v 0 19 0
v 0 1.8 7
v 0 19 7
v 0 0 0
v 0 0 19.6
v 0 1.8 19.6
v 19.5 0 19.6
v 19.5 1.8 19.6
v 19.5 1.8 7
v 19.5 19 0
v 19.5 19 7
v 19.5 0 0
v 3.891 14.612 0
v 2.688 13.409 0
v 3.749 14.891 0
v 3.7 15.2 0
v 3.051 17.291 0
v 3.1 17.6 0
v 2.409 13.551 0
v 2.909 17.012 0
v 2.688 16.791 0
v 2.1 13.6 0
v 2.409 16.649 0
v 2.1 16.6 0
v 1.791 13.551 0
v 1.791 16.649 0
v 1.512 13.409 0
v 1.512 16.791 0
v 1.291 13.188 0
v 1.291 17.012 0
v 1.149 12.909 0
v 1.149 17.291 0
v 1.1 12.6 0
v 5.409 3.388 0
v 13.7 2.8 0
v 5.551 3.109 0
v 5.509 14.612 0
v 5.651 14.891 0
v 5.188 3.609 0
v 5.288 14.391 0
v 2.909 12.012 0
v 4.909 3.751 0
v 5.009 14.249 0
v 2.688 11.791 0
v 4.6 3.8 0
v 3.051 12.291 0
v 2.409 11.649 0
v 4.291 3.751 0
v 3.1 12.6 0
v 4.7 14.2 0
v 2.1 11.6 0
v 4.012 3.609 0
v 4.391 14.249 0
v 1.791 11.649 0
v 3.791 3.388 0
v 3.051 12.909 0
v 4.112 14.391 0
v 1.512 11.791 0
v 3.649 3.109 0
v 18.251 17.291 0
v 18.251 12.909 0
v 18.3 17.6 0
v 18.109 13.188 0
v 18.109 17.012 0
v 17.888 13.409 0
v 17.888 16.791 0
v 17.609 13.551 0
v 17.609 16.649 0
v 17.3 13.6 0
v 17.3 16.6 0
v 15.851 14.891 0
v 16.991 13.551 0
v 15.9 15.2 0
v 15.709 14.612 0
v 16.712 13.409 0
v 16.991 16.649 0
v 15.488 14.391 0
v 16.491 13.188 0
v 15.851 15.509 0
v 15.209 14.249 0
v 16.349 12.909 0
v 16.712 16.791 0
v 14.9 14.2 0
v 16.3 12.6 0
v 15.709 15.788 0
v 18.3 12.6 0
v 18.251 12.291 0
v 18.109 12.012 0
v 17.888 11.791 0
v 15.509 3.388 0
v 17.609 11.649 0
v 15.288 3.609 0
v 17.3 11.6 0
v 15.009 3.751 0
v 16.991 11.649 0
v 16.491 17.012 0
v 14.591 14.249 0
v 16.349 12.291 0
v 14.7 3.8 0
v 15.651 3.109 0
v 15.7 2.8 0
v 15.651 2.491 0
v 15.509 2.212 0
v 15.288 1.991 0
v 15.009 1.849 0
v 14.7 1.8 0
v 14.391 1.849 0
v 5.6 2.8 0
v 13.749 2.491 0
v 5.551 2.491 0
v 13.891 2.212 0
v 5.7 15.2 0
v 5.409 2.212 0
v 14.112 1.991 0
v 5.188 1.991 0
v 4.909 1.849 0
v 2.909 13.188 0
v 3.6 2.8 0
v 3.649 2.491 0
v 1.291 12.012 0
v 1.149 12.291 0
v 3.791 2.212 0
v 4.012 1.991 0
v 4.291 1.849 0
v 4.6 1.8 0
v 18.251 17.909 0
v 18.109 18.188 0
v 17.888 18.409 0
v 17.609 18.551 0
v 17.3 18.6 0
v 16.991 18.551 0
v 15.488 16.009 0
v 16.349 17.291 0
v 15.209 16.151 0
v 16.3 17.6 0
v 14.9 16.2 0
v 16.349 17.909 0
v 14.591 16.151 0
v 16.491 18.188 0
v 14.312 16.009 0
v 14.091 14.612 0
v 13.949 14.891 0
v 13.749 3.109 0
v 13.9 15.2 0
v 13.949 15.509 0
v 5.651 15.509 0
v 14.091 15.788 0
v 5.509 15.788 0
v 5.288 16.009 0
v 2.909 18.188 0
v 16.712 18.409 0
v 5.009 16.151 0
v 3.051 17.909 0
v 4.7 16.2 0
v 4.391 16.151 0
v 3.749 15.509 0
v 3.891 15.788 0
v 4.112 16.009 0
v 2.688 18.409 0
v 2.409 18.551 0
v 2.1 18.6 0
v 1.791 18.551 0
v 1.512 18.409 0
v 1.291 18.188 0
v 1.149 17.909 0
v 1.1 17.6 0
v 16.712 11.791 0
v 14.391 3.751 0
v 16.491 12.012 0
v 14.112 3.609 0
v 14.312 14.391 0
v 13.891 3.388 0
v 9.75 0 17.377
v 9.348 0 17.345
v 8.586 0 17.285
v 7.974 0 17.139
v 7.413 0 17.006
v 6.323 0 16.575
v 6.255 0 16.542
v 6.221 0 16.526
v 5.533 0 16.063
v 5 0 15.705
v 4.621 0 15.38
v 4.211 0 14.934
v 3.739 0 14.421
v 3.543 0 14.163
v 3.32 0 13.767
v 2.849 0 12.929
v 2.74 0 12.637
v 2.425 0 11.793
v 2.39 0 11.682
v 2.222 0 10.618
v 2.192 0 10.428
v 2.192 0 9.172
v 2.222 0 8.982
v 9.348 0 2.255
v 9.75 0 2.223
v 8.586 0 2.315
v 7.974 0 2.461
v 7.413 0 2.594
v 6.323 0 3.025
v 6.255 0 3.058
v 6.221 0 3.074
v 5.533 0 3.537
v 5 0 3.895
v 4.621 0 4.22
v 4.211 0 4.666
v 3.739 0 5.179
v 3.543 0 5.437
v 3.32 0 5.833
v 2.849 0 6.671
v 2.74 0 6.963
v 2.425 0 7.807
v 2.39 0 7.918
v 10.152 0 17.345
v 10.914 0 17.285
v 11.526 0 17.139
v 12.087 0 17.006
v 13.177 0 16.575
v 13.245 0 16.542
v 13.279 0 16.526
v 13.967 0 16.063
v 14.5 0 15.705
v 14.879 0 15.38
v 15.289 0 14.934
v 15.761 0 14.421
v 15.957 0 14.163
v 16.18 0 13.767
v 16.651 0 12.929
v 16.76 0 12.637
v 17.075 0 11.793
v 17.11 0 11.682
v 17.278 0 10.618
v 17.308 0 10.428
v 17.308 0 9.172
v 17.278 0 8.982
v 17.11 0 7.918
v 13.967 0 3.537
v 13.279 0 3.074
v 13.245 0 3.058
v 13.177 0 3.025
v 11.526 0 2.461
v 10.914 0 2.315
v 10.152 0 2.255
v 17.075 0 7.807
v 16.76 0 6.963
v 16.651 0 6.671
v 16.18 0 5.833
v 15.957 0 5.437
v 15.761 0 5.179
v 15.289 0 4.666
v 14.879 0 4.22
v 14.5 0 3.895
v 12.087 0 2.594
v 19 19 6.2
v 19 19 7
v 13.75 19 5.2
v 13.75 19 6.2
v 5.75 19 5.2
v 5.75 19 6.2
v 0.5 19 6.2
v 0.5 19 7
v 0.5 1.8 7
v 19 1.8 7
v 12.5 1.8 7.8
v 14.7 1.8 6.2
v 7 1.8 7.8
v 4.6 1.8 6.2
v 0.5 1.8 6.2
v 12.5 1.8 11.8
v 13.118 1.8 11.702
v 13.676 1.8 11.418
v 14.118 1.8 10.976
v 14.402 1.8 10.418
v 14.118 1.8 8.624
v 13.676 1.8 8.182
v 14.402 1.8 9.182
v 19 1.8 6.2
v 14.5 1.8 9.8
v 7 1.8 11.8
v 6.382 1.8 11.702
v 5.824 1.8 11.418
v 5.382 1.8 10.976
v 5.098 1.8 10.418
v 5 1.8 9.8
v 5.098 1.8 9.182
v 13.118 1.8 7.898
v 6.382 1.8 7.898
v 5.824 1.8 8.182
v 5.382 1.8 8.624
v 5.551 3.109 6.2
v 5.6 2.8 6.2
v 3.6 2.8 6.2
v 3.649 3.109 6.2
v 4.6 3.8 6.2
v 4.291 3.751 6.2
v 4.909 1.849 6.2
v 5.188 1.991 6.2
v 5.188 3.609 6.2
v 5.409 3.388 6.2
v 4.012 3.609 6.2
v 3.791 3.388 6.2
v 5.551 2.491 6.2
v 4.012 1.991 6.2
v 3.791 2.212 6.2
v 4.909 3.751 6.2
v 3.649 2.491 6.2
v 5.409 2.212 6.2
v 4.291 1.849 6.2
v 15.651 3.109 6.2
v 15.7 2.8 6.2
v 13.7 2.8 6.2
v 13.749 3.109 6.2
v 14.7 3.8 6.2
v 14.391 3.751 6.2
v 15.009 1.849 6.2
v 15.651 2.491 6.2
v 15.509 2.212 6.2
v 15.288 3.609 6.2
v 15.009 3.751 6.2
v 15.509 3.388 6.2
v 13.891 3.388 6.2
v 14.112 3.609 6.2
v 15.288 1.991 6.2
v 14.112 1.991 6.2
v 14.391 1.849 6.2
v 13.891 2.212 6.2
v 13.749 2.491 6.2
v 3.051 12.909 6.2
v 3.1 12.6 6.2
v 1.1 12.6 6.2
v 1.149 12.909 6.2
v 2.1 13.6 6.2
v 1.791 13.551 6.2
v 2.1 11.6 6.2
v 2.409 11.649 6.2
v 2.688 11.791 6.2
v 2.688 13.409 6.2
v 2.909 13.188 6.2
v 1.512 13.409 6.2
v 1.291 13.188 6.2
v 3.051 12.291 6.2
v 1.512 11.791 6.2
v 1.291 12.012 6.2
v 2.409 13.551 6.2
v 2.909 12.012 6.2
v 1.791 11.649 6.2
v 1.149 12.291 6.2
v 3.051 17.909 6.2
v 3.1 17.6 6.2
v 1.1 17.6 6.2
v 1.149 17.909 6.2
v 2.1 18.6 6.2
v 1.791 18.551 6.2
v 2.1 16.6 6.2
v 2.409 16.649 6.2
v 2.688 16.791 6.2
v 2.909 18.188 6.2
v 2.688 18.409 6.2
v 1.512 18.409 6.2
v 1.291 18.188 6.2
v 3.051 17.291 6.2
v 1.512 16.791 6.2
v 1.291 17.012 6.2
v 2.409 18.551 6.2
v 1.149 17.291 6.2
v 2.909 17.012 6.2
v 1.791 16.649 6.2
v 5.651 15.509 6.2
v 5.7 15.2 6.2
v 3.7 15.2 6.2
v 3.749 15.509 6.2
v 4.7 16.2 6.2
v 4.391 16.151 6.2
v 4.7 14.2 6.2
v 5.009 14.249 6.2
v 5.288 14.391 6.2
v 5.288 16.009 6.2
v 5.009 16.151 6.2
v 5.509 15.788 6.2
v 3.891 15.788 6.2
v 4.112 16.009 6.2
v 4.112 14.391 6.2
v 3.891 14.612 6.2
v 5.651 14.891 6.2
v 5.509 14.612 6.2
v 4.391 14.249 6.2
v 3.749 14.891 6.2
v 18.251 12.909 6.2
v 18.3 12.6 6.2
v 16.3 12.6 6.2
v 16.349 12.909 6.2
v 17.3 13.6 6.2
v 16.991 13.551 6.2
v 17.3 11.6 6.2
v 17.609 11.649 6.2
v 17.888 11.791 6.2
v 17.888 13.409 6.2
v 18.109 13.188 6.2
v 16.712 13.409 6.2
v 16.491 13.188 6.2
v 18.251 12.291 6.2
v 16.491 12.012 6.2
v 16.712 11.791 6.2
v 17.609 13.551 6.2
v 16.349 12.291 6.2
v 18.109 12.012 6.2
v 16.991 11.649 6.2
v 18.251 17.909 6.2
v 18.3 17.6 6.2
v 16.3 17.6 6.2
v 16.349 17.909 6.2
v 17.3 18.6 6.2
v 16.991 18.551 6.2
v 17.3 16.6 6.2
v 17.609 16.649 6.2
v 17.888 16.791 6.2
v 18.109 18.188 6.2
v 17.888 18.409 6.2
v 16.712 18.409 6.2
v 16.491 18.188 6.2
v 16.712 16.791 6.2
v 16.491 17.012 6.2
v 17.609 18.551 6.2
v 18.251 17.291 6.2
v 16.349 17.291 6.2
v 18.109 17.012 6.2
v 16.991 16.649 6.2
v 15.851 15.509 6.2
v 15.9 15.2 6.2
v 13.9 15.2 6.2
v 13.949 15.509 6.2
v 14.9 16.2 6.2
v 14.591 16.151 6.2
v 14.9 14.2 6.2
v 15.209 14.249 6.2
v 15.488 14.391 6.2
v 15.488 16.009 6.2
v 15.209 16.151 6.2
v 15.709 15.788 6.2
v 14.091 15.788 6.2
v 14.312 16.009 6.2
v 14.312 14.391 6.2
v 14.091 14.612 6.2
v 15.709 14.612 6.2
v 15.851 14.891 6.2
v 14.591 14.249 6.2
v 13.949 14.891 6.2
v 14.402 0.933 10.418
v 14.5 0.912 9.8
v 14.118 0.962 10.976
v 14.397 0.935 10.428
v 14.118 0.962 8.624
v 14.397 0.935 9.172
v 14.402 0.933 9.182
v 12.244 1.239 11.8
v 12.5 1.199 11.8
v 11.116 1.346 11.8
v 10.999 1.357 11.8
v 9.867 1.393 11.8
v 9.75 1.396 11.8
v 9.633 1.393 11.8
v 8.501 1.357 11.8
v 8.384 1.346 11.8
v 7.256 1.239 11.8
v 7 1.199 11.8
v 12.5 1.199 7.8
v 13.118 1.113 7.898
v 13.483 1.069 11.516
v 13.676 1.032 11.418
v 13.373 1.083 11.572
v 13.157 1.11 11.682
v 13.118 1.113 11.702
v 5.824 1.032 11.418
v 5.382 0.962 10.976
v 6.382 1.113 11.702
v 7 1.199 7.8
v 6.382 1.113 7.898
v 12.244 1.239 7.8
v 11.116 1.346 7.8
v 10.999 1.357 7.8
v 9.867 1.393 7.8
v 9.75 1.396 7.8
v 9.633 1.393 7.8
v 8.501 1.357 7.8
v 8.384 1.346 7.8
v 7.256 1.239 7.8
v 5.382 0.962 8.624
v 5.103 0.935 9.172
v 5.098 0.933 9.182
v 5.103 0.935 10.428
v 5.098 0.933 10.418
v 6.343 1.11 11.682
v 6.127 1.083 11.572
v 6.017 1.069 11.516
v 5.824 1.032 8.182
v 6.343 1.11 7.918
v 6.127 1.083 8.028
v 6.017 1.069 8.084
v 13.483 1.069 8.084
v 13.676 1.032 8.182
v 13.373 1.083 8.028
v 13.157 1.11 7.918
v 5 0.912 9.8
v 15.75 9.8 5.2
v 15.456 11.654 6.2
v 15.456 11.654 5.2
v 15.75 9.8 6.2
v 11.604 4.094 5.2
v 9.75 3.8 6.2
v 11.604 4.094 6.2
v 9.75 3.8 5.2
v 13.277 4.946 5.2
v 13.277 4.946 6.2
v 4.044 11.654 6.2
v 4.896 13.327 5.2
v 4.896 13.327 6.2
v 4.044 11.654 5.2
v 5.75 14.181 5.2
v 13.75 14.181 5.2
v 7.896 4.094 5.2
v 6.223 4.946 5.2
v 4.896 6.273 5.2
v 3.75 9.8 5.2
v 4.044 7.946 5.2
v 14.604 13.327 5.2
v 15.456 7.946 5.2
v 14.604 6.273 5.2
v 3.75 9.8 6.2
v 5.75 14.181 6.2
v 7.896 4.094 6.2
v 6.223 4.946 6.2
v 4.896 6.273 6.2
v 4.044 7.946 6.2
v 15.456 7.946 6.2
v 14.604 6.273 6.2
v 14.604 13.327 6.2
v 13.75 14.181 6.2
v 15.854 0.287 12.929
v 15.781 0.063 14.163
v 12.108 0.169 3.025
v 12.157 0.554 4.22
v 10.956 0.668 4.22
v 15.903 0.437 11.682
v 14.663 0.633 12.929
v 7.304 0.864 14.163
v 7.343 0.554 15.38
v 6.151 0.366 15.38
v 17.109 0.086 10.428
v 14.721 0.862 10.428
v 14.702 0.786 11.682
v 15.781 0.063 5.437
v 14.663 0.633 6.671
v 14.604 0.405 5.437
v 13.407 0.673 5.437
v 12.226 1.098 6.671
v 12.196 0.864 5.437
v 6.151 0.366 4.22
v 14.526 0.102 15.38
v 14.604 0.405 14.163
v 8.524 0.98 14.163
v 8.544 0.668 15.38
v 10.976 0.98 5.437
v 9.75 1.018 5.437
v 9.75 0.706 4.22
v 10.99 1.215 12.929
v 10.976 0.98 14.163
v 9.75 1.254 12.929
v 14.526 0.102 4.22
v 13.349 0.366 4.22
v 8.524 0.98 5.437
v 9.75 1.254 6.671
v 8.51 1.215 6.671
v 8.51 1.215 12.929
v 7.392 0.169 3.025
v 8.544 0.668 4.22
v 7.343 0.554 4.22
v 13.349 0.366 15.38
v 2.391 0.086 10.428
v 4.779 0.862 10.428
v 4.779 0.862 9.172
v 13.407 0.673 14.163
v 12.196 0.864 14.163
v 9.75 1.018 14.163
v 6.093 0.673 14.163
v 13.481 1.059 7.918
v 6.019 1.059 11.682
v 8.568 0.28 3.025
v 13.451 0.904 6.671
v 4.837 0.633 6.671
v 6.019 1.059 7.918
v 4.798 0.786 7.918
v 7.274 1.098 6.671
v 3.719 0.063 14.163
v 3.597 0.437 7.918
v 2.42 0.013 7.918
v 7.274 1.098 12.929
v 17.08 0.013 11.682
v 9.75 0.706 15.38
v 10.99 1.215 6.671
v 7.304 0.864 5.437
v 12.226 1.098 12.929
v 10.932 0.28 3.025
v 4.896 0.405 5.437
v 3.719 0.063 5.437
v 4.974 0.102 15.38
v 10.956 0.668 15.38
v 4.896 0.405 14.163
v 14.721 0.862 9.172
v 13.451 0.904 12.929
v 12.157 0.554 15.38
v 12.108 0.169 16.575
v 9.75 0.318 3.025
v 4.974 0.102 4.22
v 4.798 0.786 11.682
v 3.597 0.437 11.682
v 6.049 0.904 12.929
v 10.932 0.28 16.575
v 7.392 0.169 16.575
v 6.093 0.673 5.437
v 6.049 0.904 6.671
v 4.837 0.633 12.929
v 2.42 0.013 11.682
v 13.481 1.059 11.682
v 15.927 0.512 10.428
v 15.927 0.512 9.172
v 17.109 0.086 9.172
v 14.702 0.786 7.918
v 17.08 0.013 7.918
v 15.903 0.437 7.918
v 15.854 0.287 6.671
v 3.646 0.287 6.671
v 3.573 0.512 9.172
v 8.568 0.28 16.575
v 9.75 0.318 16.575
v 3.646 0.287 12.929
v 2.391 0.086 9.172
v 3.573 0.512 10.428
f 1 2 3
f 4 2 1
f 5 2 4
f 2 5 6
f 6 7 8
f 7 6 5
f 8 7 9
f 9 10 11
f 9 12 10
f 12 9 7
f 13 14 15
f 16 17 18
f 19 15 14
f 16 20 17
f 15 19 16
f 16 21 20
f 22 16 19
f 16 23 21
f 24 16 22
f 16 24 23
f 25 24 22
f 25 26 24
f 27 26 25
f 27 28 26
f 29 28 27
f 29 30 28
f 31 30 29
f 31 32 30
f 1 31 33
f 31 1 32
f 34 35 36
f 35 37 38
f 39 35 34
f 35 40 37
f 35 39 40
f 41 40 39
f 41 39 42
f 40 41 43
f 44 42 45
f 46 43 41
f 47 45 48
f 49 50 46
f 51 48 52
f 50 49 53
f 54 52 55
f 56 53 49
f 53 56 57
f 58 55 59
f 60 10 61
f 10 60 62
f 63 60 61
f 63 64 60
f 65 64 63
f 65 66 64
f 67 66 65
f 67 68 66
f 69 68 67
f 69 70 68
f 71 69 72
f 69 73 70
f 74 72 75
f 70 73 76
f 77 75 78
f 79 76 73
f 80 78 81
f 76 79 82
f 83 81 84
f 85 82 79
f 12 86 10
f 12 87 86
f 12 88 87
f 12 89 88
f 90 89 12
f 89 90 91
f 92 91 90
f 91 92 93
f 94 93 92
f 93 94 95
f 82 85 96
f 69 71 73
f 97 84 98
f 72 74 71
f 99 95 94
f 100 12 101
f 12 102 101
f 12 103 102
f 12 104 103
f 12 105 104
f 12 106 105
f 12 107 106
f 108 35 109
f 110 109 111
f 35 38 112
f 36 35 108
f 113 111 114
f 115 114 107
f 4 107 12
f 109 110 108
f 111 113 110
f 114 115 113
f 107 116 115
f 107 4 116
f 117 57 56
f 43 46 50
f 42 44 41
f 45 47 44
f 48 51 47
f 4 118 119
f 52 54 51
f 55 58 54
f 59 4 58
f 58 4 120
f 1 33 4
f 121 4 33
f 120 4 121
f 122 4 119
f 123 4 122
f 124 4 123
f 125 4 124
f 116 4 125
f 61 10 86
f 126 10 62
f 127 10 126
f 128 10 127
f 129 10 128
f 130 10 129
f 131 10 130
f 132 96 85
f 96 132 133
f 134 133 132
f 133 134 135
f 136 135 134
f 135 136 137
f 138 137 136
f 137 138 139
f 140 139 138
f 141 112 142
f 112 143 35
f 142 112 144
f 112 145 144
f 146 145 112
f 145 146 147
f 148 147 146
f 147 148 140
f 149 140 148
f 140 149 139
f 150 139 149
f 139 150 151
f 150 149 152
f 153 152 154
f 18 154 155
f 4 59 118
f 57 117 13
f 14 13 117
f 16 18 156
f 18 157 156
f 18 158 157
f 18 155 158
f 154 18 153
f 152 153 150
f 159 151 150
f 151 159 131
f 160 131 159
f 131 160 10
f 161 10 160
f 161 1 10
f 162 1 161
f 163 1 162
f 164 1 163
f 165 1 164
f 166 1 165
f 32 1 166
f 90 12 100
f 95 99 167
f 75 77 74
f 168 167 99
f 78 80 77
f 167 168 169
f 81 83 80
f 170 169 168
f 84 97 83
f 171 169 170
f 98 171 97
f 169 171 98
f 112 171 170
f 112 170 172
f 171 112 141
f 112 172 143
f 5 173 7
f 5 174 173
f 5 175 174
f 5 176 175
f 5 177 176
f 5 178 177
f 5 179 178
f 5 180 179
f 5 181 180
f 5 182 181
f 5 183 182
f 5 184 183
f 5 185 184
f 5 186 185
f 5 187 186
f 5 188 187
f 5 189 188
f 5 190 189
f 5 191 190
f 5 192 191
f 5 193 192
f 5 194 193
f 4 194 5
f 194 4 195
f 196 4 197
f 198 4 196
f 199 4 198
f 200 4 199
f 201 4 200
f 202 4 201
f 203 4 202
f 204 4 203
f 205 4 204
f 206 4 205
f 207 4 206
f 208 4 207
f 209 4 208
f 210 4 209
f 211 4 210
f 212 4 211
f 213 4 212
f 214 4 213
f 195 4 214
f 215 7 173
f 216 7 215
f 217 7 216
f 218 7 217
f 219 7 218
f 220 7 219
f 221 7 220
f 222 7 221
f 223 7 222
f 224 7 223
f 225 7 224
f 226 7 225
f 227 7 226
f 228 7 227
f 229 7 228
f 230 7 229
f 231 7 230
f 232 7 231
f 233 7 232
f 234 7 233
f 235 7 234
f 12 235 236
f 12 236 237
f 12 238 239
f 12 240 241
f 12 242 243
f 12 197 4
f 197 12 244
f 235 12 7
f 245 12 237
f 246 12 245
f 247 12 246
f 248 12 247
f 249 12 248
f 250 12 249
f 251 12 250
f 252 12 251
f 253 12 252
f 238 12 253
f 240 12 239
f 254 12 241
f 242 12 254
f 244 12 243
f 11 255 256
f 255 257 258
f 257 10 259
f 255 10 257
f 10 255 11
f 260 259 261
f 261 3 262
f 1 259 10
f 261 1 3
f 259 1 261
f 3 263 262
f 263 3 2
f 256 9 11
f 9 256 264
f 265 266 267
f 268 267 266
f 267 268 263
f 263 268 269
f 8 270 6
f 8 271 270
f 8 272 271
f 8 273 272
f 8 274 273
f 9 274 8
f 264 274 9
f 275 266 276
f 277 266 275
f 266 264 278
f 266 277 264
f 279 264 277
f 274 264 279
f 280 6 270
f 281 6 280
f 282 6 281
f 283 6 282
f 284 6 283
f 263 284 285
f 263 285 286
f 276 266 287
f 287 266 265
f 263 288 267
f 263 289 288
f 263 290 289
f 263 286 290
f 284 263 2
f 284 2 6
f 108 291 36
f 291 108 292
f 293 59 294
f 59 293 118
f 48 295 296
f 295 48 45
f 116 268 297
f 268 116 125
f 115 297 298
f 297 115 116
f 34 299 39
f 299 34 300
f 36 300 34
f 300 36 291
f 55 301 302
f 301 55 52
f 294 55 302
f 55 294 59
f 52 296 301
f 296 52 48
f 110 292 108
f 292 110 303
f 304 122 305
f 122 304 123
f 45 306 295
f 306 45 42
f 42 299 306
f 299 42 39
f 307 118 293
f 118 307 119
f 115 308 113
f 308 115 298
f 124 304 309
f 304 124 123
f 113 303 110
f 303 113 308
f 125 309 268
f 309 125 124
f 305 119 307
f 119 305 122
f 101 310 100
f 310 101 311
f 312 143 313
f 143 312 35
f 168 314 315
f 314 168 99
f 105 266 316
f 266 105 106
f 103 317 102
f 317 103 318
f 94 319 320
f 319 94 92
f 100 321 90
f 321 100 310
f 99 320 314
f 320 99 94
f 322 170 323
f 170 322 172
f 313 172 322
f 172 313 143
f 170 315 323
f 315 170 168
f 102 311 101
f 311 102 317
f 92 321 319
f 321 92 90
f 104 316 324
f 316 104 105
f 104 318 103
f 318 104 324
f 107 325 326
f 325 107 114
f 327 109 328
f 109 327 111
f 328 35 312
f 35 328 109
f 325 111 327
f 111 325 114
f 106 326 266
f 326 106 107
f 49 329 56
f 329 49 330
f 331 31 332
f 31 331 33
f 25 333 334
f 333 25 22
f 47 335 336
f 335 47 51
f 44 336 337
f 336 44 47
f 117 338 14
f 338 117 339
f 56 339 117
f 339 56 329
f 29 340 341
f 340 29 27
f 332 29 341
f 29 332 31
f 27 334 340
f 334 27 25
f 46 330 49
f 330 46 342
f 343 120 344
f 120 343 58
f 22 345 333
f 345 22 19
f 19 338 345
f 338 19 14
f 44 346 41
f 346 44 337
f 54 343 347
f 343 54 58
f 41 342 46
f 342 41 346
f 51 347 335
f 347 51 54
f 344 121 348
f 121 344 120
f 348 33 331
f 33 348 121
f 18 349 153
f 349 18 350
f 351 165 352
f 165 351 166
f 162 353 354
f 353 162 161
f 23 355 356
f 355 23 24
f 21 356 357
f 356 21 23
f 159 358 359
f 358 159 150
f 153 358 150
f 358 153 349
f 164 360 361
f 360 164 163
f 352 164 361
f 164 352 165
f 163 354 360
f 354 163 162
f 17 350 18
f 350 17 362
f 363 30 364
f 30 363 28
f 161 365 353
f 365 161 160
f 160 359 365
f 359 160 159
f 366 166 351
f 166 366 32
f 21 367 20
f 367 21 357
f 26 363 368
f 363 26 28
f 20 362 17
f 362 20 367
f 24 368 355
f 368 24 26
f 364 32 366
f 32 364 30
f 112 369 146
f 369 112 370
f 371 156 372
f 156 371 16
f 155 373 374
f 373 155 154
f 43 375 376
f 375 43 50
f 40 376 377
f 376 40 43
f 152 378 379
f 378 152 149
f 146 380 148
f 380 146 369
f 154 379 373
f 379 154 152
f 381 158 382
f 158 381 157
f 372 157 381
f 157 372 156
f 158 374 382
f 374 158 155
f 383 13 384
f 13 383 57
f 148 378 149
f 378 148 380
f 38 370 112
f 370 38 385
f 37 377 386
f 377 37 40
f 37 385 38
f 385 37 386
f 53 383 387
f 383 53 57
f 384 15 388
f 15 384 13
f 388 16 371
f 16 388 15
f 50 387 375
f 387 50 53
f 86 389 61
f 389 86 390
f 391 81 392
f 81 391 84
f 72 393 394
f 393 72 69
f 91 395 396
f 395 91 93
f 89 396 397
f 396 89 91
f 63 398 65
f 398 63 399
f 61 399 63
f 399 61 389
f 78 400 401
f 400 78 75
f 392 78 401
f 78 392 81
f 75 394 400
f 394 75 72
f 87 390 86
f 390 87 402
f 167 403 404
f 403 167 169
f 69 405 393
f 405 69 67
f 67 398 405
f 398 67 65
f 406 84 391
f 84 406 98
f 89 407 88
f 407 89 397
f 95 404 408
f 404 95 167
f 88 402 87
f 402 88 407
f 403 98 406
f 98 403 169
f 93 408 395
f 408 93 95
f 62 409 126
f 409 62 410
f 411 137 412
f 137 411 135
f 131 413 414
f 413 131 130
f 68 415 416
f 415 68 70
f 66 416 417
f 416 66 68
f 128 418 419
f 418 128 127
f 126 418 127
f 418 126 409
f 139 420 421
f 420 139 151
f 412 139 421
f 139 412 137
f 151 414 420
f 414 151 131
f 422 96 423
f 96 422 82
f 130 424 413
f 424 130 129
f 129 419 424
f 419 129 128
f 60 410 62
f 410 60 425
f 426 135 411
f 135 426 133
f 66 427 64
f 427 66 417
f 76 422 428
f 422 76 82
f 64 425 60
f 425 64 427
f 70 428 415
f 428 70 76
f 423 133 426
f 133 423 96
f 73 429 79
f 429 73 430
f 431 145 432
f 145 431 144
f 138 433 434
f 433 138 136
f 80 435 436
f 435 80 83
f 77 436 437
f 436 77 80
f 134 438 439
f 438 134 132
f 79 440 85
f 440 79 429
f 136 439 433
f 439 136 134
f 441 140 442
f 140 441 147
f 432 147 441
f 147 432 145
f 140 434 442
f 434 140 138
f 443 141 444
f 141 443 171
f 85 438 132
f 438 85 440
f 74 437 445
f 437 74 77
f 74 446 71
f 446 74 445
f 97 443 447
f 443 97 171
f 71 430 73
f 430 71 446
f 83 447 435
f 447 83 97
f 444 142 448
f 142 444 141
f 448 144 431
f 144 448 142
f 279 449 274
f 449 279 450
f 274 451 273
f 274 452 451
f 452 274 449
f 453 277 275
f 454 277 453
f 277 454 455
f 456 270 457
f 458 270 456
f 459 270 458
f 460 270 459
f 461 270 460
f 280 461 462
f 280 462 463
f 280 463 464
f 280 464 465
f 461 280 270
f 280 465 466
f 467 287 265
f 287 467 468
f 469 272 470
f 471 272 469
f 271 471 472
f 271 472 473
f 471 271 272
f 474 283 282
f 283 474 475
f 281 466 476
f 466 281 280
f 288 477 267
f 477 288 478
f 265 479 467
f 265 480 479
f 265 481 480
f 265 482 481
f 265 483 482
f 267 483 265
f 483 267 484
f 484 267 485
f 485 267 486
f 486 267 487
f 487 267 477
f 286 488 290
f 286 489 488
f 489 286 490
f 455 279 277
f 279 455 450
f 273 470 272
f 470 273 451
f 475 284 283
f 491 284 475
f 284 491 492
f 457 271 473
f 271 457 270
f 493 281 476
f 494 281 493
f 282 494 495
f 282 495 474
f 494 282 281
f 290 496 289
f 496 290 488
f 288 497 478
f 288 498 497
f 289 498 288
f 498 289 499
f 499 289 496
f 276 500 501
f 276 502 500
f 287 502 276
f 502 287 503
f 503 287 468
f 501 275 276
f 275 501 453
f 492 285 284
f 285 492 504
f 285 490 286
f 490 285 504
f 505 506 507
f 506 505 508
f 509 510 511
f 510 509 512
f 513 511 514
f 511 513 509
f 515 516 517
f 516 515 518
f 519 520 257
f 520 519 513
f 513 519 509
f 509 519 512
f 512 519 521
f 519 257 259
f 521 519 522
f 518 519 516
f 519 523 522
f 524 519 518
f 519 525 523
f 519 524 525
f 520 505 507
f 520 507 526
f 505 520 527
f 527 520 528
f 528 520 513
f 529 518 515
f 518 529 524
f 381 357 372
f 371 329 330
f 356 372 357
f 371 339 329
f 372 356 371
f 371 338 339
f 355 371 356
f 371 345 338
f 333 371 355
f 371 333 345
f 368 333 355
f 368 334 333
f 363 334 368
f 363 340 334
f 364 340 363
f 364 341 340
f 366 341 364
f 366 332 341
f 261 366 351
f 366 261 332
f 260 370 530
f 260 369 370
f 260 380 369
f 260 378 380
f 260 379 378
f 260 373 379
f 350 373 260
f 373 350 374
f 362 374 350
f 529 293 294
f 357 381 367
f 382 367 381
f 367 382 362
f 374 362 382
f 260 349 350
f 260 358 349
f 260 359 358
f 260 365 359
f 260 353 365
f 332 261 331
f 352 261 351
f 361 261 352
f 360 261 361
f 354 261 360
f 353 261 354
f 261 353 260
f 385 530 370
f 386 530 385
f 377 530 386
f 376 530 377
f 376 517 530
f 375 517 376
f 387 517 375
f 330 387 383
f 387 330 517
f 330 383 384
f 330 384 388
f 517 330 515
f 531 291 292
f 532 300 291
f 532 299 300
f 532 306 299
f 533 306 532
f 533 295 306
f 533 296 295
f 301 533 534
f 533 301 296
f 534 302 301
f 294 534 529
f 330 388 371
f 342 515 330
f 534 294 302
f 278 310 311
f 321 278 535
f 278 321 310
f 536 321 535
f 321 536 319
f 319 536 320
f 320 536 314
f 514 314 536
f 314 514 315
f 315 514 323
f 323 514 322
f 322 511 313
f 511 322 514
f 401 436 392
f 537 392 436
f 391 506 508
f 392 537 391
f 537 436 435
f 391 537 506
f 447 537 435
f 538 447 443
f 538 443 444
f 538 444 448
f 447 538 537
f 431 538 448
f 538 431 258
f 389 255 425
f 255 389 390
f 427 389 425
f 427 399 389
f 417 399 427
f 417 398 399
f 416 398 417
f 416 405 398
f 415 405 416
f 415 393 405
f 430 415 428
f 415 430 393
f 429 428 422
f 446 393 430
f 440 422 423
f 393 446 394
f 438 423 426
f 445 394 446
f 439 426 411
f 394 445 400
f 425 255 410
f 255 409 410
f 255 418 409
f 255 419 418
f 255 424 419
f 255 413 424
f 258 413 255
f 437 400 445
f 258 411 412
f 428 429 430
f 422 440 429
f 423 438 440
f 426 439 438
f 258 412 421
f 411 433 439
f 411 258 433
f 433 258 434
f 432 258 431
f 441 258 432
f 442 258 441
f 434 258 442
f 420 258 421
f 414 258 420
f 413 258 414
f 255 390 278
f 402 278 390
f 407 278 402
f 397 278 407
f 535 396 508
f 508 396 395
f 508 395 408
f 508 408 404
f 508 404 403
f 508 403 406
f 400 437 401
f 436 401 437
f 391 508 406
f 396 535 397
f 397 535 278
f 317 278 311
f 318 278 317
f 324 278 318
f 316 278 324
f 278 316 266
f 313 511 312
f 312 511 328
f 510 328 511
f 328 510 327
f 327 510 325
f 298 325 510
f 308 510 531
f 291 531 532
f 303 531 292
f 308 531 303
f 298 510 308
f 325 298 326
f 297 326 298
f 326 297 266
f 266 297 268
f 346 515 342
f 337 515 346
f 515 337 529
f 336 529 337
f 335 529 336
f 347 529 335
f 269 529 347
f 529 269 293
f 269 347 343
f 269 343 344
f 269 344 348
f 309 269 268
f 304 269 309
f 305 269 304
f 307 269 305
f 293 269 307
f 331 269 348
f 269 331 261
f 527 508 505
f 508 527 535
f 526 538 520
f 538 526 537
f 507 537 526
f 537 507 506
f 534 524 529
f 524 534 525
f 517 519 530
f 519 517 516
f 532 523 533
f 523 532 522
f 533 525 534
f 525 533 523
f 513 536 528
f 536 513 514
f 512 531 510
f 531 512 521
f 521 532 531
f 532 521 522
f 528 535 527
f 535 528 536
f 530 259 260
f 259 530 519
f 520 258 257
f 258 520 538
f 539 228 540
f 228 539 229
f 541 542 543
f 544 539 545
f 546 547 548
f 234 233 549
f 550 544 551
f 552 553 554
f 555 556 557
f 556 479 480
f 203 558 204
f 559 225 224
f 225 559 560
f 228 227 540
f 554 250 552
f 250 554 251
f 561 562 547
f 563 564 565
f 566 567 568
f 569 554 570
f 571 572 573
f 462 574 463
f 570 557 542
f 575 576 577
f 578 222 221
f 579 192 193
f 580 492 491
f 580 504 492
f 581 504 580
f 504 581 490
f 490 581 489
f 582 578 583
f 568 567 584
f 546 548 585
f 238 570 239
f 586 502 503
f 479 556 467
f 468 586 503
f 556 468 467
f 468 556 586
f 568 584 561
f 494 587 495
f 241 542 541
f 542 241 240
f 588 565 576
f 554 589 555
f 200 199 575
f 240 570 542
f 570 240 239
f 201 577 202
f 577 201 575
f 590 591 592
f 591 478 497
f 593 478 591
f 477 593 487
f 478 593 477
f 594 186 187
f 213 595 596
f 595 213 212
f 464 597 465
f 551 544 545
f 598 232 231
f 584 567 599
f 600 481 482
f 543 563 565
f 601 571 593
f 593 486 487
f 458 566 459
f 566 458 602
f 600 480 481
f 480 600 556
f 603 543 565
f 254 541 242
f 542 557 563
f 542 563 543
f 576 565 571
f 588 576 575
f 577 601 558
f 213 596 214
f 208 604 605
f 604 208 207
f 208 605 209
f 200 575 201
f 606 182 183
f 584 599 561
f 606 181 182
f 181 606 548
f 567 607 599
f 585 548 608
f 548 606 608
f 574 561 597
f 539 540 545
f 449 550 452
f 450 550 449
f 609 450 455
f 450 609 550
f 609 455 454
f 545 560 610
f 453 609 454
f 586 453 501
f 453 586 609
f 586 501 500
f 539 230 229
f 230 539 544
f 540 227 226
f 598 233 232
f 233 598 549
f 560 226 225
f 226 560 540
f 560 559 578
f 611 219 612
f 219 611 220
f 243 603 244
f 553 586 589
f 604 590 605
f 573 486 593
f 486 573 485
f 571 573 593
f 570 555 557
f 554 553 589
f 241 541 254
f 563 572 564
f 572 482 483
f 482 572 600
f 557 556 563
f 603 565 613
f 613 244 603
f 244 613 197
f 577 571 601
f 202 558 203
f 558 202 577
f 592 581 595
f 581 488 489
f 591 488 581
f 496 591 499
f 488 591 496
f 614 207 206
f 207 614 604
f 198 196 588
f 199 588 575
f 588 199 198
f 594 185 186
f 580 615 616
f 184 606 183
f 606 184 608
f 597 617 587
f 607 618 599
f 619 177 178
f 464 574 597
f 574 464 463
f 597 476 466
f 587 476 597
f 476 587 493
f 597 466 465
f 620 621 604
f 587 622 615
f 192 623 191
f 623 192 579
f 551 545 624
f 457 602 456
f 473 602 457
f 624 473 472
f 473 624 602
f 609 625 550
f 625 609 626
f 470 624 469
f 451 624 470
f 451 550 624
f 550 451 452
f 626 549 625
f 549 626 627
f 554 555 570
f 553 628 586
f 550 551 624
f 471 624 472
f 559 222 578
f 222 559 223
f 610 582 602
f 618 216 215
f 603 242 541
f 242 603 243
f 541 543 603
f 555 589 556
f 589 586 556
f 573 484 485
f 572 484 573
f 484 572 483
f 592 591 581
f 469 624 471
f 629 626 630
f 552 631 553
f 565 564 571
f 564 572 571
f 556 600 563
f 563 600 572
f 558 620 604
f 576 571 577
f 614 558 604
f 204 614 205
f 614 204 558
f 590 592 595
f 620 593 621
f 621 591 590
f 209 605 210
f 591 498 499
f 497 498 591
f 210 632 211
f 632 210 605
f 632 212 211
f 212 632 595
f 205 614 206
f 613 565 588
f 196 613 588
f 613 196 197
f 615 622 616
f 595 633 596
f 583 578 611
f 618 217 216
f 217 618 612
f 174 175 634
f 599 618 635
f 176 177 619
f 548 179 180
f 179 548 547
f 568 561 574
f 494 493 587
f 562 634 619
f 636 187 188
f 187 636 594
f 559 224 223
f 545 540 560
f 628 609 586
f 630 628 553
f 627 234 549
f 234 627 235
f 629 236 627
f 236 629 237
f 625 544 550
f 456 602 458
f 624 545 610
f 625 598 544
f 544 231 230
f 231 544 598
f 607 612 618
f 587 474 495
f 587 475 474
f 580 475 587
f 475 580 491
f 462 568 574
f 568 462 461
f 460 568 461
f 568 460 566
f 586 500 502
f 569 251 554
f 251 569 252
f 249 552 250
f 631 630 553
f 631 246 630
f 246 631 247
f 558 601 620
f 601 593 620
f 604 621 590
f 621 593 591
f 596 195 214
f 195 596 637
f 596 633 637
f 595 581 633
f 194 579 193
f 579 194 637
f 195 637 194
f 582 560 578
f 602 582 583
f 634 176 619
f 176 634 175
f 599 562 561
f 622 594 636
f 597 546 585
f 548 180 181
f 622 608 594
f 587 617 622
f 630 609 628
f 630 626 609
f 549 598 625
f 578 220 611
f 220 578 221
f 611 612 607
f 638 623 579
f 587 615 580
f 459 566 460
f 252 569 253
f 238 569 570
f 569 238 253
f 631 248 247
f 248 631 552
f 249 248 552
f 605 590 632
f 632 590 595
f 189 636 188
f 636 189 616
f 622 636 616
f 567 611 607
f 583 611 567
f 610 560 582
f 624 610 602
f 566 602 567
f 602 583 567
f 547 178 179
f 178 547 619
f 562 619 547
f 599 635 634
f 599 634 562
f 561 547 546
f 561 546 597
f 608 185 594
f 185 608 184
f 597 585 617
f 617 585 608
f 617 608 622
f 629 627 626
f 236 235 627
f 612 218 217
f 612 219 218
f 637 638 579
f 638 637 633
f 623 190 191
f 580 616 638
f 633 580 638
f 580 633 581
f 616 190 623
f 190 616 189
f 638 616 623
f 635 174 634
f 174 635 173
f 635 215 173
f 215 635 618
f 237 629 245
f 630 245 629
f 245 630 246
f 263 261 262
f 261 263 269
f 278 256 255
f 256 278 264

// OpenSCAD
bodyHeight = 19.6;
bodyWidth = 19.5;
bodyDepth = 19;
frontThickness = 1.8;
mountingHoleDiameter=2;

pcbThickness = 1.6;
pcbWidth = 18.5;
pcbDepth = 17.5;

connectorWidth = 9.5;
connectorHeight = 4;

icY = 9.6;
icThickness = 1;
icDiameter = 12;
diodeWidth = 8;

cylinderPrecision=20;
spherePrecision=100;

baseHeight = bodyHeight/2 - pcbThickness/2 - connectorHeight/2;

dentDiameter = 40;
dentThickness = 0.3;

module mountingHoles() {
    xFix = 0.4;
    
    holes = [
     [3.7,1],[13.8,1]
    ,[1.2,10.8] ,[1.2,15.8], [3.8,13.4]
    ,[16.4,10.8],[16.4,15.8],[14,13.4] ];
    xOffset = (bodyWidth - pcbWidth)/2;
    for (i = [ 0 : len(holes) - 1 ]) 
    {
        point=holes[i];
        translate([point[0]+xOffset+xFix,point[1]+frontThickness,0])
        {
            cylinder(d=mountingHoleDiameter,h=bodyHeight, $fn=cylinderPrecision);
        }
    }
}

module bodyBase() {
    difference() {
        cube([bodyWidth, bodyDepth, bodyHeight]);
        translate([0,frontThickness,baseHeight]) { cube([bodyWidth, bodyDepth, bodyHeight]); };
    }
};

module pcb() {
    xOffset = (bodyWidth - pcbWidth)/2;
    yOffset = baseHeight - pcbThickness/2;
    translate([xOffset,frontThickness,yOffset]) { cube([pcbWidth,pcbDepth,pcbThickness]);};
}

module connector() {
    zOffset = baseHeight+pcbThickness/2+connectorHeight/2;// (bodyHeight-pcbThickness)/2;
    translate([bodyWidth/2,frontThickness/2,zOffset]) {
        rotate([90,0,0]) {
            hull() {
                translate([connectorWidth/2 - connectorHeight/2,0,0]) { cylinder(d=connectorHeight,h=frontThickness,$fn=cylinderPrecision,center=true); }
                translate([-(connectorWidth/2 - connectorHeight/2),0,0]) { cylinder(d=connectorHeight,h=frontThickness,$fn=cylinderPrecision,center=true); }
            }
        }
    }
}

module icCutout() {
    translate([bodyWidth/2,bodyHeight/2,baseHeight-icThickness - pcbThickness/2]) {
        cylinder(d=icDiameter,h=icThickness,$fn=cylinderPrecision);
    }
}

module diodeCutout() {
    translate([(bodyWidth - diodeWidth)/2,bodyDepth/2,baseHeight-icThickness - pcbThickness/2]) {
        cube([diodeWidth,bodyDepth/2,icThickness]);
    }
}

module dent() {
    translate([bodyWidth/2, -dentDiameter/2 + frontThickness - dentThickness, bodyHeight/2]) { sphere(d=dentDiameter, $fn=spherePrecision); };
}

difference() {
    bodyBase();
    mountingHoles();
    connector();
    icCutout();
    diodeCutout();
    dent();
    pcb();
}
